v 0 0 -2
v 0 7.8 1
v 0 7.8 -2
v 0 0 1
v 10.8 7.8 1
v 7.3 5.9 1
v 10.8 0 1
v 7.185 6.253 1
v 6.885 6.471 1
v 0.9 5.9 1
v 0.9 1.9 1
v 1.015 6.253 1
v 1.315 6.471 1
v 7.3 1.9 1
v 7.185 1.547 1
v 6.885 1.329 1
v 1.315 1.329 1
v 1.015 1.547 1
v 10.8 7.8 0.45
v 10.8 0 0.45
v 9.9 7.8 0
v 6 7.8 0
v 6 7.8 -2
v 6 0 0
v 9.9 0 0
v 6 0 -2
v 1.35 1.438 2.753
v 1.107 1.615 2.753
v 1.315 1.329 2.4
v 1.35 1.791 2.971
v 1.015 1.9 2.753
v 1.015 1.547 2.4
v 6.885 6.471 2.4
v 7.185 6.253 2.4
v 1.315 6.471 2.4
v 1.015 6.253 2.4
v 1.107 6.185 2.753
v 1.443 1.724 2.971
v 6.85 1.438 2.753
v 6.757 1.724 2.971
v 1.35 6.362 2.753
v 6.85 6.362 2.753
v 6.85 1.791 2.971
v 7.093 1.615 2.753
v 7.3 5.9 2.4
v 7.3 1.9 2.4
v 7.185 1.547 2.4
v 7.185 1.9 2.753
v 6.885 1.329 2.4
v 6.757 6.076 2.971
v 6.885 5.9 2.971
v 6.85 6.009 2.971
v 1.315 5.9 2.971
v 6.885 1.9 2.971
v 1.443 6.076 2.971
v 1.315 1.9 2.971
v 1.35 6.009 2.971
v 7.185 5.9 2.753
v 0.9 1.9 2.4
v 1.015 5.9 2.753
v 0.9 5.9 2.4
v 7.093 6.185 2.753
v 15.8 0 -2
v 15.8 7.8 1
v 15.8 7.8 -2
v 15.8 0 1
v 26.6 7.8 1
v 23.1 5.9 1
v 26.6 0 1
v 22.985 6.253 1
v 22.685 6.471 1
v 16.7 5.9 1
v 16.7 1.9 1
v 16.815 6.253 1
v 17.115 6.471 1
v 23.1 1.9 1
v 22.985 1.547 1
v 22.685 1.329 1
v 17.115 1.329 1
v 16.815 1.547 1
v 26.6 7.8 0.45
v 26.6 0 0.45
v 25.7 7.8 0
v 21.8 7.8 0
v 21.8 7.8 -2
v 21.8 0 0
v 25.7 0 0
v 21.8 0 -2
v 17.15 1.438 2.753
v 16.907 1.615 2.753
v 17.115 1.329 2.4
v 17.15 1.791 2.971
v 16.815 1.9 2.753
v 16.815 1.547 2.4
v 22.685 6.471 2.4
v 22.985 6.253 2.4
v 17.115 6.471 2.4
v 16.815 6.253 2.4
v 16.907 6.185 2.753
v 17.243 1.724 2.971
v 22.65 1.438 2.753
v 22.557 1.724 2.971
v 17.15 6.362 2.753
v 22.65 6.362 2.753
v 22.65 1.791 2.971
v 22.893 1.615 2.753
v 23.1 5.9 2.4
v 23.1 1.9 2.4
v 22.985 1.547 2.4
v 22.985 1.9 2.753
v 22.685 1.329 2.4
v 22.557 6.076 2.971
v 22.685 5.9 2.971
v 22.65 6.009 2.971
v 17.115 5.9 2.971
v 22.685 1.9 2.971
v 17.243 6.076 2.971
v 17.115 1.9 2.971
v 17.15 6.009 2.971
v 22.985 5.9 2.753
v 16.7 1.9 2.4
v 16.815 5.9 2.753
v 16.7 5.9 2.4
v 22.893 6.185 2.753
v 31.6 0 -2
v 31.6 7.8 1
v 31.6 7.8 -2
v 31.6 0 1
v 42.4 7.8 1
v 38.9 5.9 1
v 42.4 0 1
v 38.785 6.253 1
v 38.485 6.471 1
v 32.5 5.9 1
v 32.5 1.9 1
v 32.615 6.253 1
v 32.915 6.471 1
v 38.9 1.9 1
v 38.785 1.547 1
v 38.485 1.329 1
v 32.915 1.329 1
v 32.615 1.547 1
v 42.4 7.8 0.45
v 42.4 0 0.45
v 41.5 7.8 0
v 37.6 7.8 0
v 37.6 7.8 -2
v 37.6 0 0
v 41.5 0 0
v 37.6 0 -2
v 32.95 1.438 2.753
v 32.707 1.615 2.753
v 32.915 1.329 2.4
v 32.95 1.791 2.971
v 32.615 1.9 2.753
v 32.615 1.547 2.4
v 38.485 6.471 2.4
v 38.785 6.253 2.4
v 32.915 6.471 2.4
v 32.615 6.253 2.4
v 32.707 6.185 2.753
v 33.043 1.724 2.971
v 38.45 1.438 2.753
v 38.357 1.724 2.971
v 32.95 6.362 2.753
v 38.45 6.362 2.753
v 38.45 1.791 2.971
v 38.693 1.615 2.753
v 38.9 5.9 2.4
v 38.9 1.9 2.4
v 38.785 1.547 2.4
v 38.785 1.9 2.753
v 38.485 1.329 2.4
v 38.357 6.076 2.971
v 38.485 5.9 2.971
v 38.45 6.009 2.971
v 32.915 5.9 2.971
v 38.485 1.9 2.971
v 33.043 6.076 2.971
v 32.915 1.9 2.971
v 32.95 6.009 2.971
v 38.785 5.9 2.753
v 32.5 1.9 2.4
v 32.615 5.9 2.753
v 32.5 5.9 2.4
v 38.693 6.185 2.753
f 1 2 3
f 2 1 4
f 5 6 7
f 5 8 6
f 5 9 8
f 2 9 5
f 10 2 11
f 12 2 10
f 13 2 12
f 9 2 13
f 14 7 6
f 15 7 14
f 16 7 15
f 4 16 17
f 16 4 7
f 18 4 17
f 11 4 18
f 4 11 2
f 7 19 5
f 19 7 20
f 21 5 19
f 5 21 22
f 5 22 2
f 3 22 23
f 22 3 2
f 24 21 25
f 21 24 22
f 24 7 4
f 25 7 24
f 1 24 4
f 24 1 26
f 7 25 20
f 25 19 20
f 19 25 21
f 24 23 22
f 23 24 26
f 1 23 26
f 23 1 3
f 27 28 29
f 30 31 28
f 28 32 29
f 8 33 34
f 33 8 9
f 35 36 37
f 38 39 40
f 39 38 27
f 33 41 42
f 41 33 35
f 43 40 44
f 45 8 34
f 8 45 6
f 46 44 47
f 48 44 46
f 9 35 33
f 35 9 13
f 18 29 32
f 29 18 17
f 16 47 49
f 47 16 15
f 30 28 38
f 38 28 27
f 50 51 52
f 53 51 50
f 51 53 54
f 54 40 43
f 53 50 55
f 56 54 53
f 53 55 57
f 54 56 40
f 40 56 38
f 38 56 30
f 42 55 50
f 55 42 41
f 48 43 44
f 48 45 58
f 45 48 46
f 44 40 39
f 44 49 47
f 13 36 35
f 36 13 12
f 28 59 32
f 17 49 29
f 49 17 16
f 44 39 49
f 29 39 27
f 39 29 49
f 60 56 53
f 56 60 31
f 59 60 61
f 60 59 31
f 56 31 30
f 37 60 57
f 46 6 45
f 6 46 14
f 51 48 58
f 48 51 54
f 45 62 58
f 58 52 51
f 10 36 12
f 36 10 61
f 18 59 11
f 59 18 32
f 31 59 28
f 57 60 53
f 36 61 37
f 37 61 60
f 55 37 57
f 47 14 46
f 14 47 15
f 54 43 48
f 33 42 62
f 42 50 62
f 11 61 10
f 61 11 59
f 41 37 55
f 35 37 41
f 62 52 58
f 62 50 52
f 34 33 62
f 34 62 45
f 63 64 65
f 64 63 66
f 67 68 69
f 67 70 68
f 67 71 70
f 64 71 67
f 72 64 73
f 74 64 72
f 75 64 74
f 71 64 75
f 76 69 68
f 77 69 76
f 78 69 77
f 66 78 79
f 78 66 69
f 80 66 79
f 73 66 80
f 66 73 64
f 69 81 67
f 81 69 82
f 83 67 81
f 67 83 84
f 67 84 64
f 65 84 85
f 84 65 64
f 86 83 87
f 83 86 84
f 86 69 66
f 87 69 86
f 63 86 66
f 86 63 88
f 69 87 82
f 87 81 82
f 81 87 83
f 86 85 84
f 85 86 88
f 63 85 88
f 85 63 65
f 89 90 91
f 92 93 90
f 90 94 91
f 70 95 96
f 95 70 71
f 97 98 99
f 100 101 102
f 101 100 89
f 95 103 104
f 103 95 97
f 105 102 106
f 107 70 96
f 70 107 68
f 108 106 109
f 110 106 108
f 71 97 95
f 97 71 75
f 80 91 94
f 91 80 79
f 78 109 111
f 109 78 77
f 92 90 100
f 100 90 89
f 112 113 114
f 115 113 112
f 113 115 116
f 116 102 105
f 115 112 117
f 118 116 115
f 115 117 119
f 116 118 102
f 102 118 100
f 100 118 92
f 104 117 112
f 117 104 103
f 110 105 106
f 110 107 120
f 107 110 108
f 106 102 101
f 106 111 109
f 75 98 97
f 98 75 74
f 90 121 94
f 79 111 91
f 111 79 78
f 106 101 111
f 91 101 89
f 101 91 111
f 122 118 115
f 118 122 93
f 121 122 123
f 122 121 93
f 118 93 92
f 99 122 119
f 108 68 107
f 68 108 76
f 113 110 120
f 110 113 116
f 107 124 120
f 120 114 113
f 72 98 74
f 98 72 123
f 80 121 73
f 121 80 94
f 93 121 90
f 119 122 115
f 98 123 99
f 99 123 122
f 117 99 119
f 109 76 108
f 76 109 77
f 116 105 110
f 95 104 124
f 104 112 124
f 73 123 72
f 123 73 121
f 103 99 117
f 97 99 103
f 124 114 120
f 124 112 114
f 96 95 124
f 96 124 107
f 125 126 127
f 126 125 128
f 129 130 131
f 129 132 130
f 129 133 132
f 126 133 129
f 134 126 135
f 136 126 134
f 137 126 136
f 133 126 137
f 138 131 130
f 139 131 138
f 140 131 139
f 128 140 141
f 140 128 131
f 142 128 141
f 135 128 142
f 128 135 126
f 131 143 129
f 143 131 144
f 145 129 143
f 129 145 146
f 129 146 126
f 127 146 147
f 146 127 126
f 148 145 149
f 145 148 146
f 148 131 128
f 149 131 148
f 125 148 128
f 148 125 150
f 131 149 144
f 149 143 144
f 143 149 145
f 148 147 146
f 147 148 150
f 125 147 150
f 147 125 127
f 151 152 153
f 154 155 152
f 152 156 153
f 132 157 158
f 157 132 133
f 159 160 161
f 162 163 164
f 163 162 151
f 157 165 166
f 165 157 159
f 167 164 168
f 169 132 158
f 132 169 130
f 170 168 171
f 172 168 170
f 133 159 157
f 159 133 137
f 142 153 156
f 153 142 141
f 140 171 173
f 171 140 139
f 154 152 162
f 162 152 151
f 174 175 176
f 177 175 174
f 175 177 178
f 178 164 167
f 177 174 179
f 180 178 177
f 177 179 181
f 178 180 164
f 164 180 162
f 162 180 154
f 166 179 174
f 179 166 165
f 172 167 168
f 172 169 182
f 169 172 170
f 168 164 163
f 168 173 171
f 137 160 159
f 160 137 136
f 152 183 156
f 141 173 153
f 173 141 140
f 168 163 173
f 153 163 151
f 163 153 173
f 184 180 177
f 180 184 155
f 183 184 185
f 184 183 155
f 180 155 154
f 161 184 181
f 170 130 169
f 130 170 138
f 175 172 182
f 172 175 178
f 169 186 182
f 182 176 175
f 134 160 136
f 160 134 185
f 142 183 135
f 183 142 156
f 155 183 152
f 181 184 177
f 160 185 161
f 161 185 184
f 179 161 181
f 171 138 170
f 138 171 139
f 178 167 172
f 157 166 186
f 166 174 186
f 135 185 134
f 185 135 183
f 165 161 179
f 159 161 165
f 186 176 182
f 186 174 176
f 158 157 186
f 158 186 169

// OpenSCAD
$fa = 1;
$fs = 0.4;

module button_insert() {
    difference() {
        // === Base rectangle ===
        cube([10.8, 7.8, 1]);

        // === Triangular prism ===
        translate([9.1, 9, -0.4])
            rotate([90, 0, 0])
            linear_extrude(height=12)
                polygon(points=[[0,0], [2,0], [2,1]]);
    }

    // === Bottom extension ===
    translate([0, 0, -2])
        cube([6, 7.8, 2]);

    // === Rounded top cap ===
    translate([1.5, 1.9, 1])
    minkowski() {
        cube([5.2, 4, 1.4]);
        sphere(r=0.6);
    }
}

// === Create 3 spaced parts ===
for (i = [0:2]) {
    translate([i * (10.8 + 5), 0, 0])
        button_insert();
}
